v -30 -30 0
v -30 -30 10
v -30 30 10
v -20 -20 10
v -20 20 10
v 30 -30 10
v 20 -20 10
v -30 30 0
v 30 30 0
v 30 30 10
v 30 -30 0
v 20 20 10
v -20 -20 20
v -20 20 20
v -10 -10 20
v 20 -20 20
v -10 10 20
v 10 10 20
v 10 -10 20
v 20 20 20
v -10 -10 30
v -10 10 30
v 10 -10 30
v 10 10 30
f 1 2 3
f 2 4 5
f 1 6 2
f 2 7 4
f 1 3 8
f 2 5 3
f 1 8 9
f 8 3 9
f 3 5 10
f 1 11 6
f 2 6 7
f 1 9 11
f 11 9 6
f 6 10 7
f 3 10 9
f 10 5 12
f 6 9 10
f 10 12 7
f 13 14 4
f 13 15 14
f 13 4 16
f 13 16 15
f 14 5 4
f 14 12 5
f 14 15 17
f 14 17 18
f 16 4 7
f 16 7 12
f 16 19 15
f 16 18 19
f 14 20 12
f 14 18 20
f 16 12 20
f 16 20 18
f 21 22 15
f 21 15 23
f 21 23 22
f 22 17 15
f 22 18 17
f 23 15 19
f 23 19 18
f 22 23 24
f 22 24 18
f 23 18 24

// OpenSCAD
// 3段の階段状ピラミッド
// 各段は中心を揃えて積み上げる

union() {
    // 1段目: 60mm x 60mm x 10mm
    translate([-30, -30, 0])
        cube([60, 60, 10]);

    // 2段目: 40mm x 40mm x 10mm
    translate([-20, -20, 10])
        cube([40, 40, 10]);

    // 3段目: 20mm x 20mm x 10mm
    translate([-10, -10, 20])
        cube([20, 20, 10]);
}
